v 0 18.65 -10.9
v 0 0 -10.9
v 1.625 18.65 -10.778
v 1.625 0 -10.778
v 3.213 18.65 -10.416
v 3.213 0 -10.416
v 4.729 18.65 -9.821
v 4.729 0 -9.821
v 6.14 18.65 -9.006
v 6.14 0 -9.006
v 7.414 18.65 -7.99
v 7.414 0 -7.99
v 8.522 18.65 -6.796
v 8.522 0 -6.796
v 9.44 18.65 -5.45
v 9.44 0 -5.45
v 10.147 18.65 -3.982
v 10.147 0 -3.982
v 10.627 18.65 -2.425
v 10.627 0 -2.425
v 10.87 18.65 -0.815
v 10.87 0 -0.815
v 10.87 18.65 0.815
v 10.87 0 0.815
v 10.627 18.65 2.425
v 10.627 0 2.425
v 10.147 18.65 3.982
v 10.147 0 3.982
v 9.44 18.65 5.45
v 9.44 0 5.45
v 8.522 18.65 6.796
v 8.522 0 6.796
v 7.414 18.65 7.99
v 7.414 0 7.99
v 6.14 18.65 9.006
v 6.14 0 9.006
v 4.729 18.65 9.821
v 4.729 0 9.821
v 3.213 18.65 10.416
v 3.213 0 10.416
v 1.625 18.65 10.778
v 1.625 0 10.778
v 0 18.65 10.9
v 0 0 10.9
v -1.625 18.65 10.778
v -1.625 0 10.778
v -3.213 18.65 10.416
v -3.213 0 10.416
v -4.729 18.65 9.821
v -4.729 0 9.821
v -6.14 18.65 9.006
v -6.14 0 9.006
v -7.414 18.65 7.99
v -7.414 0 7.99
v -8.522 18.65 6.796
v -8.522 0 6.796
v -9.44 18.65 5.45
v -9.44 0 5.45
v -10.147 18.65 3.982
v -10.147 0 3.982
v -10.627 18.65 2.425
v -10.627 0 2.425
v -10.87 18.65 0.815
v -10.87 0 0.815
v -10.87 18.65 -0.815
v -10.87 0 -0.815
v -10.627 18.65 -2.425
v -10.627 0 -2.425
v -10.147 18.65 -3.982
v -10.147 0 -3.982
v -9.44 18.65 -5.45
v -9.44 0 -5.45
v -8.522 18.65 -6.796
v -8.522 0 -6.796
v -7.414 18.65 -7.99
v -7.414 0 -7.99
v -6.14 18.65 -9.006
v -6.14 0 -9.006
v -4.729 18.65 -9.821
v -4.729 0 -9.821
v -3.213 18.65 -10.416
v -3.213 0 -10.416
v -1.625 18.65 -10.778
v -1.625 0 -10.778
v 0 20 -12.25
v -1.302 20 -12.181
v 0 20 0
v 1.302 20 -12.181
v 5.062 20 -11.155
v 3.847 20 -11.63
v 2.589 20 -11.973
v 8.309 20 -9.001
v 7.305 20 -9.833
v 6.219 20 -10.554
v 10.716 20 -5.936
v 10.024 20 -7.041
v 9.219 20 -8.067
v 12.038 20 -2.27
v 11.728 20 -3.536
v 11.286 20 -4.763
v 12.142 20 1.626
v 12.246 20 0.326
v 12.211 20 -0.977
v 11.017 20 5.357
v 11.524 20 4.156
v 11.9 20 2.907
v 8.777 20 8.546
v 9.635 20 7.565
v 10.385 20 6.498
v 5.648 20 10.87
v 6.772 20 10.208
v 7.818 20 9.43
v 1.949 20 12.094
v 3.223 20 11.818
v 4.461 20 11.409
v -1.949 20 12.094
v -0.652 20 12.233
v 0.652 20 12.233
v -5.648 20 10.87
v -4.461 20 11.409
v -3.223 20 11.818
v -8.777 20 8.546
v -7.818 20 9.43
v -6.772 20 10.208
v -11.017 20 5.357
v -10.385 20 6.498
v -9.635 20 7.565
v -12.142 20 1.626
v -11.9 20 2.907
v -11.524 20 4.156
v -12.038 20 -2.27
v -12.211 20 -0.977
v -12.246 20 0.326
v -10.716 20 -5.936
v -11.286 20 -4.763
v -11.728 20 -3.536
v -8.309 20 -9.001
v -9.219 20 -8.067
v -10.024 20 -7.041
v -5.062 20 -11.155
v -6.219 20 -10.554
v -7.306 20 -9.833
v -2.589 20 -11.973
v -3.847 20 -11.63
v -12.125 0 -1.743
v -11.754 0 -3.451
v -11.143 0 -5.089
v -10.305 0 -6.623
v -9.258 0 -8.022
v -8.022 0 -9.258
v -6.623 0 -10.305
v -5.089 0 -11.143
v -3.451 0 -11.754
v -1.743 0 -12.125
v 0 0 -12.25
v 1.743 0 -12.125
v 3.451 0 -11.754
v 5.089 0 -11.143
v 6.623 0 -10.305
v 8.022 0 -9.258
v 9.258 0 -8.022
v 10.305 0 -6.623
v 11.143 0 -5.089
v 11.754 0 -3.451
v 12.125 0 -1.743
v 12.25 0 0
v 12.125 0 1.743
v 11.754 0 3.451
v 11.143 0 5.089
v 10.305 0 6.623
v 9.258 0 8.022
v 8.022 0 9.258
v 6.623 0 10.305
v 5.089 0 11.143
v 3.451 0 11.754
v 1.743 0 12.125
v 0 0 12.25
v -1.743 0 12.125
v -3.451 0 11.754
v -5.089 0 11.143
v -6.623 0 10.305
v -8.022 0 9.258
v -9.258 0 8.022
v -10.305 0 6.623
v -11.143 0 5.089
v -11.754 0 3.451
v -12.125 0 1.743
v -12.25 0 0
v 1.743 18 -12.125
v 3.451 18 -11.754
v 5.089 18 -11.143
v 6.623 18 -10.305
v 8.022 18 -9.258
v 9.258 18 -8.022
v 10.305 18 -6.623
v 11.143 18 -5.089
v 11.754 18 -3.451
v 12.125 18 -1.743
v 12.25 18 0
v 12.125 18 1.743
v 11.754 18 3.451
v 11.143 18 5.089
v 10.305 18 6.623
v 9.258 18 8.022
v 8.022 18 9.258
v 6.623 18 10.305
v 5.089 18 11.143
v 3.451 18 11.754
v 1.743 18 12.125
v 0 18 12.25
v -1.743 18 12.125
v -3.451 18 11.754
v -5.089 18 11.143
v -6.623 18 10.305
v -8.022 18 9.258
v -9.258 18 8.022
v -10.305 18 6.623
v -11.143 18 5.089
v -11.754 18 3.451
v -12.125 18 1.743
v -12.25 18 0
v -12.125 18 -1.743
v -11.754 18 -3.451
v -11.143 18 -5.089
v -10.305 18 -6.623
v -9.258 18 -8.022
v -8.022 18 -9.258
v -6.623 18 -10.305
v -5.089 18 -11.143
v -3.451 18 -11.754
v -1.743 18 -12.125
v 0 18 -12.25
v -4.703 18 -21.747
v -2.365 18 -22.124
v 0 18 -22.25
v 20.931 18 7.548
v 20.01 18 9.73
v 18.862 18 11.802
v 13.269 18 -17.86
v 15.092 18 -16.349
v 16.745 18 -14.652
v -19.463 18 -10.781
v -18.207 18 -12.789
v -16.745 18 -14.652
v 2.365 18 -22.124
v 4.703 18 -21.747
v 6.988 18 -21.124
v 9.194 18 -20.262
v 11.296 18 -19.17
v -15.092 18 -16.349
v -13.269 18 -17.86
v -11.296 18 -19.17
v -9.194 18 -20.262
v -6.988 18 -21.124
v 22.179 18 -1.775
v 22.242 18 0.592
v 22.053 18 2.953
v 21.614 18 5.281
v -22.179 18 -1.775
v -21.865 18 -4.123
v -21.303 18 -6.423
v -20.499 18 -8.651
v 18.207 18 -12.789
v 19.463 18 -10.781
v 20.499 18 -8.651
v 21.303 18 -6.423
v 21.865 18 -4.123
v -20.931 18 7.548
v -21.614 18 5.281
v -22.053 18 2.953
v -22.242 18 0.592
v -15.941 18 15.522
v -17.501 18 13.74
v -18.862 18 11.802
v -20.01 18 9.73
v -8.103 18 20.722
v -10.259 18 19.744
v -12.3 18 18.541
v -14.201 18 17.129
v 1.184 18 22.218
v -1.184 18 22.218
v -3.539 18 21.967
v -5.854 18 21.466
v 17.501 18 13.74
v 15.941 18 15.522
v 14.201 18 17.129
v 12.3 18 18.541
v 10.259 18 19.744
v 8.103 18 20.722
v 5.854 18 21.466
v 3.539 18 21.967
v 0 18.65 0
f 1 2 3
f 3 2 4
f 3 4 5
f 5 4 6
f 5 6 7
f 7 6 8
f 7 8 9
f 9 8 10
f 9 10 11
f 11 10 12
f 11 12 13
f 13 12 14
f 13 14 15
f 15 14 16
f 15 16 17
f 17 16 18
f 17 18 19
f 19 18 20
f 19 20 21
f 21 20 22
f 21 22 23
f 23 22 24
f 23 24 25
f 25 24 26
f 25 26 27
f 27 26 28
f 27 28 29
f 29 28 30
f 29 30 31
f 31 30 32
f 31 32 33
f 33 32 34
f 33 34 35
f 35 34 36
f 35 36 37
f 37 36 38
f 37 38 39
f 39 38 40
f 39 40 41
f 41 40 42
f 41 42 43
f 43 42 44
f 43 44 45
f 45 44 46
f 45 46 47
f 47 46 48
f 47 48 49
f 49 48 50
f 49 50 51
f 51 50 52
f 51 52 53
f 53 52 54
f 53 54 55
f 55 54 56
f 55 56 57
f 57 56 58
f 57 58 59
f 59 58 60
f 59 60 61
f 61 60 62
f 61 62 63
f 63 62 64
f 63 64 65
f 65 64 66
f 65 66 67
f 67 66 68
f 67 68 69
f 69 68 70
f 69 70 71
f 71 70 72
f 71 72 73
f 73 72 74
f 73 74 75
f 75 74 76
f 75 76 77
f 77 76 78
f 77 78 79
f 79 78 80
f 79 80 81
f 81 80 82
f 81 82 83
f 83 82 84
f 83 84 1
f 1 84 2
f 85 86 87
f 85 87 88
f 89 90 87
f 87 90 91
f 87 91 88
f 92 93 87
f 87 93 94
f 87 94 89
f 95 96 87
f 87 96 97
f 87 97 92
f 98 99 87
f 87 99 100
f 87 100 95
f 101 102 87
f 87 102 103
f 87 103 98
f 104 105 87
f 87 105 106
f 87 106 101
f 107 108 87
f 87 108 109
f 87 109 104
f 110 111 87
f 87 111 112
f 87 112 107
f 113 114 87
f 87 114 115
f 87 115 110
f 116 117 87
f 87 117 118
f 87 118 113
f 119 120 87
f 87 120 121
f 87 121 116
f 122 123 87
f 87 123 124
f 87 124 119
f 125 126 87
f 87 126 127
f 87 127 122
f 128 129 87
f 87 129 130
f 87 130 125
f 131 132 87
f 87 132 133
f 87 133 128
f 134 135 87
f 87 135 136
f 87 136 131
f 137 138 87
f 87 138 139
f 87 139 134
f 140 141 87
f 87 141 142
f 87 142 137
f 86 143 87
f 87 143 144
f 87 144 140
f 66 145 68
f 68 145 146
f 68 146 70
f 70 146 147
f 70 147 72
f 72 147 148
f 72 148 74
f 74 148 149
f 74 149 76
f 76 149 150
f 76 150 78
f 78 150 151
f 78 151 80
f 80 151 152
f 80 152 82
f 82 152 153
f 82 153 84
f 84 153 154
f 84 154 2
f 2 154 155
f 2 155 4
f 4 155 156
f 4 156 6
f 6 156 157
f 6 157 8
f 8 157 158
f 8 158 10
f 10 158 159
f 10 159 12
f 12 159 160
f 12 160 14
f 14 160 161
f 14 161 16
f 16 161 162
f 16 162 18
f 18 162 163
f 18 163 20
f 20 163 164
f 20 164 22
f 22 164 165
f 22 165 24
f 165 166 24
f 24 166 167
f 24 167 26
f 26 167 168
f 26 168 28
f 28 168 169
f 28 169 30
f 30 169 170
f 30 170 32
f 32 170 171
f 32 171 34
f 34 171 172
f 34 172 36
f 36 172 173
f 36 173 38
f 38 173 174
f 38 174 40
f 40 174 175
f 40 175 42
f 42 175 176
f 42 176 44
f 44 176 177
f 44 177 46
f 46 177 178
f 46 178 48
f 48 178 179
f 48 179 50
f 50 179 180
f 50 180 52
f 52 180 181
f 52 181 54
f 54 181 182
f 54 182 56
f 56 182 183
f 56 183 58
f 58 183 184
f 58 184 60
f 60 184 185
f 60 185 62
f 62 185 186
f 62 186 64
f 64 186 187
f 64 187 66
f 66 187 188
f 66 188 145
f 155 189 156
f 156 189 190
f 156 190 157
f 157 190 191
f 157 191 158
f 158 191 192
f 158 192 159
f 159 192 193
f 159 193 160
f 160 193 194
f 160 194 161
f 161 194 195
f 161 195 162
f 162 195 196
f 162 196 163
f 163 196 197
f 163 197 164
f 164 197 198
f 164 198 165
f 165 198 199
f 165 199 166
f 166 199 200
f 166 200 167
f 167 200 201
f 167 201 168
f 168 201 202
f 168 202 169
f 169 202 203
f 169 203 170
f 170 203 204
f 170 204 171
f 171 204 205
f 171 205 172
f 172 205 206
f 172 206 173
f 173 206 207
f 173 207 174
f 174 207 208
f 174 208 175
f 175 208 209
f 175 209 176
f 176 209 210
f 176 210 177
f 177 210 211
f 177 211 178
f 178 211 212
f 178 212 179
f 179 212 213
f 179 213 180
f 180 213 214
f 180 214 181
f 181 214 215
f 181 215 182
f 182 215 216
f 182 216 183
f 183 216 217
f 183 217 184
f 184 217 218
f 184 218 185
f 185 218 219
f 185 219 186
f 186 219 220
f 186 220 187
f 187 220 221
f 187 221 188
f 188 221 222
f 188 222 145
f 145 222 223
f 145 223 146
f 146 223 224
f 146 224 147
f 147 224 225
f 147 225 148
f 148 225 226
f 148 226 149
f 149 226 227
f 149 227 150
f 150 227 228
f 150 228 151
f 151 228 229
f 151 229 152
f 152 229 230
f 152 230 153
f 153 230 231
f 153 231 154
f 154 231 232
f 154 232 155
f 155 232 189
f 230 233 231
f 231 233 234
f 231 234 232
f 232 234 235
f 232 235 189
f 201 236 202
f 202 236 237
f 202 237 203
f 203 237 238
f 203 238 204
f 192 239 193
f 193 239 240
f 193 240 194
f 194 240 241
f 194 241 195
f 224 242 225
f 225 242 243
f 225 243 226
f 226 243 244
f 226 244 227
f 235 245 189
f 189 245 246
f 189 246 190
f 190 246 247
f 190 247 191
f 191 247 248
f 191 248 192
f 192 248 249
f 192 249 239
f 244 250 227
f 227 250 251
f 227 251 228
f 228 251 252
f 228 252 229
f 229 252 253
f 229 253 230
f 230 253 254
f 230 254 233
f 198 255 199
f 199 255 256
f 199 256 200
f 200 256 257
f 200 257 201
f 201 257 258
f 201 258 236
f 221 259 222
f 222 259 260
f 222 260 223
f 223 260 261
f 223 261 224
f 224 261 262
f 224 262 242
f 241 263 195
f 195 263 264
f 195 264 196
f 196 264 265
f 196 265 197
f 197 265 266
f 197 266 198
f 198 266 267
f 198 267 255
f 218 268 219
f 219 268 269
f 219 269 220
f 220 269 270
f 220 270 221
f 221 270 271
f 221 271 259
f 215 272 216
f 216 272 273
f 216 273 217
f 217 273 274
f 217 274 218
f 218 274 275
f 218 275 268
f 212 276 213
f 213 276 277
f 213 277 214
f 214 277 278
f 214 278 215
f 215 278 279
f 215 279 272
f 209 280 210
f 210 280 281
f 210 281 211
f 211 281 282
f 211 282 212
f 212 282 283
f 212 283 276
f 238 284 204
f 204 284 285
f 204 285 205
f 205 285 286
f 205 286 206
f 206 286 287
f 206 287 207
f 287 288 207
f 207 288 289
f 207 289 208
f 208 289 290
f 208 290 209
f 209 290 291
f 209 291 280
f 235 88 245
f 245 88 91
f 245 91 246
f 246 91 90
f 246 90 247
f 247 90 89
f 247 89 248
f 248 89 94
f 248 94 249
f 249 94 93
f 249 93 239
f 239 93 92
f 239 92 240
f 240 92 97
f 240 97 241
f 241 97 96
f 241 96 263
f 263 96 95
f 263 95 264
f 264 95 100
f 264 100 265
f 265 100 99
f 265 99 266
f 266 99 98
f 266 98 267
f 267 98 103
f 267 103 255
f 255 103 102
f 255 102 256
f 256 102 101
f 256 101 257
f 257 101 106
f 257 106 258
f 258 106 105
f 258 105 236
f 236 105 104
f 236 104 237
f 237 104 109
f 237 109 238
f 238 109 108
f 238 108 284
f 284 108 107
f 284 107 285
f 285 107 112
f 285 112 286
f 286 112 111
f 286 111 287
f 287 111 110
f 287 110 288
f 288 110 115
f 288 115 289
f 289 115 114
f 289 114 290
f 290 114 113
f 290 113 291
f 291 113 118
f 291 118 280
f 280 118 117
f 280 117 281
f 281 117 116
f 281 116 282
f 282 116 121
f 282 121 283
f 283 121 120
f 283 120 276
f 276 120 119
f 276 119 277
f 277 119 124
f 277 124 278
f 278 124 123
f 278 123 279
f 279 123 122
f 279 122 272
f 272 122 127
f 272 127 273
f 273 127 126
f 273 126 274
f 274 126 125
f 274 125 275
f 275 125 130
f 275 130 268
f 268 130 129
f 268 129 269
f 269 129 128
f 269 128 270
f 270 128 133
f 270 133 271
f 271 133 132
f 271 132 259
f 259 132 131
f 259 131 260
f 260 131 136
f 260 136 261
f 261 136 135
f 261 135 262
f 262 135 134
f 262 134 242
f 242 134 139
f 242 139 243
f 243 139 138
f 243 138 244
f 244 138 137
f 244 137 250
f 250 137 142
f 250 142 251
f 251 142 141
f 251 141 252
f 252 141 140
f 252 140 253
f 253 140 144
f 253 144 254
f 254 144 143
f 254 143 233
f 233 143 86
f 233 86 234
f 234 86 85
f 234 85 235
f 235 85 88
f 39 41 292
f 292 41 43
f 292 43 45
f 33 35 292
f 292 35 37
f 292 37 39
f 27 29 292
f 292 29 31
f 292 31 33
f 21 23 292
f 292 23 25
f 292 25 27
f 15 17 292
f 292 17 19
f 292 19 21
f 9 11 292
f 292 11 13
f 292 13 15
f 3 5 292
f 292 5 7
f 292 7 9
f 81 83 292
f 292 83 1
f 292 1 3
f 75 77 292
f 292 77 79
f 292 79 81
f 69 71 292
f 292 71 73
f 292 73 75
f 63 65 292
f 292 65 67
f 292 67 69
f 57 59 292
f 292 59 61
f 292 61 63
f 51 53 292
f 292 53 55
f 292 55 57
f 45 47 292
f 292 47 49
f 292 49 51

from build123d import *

# Parameters (mm, degrees)
CROQUIS4_R              = 10.9
SALIENTE_EXTRUIR3_DEPTH = 1.35


with BuildPart() as part:
    # Croquis1 → Revolución1 (revolve)
    with BuildSketch(Plane.XY):
        Polygon((-10.9, 20), (-10.9, 0), (-12.25, 0), (-12.25, 18), (-22.25, 18), (-12.25, 20), align=None)
    revolve(axis=Axis((0, 0, 0), (0, 1, 0)))

    # Croquis4 → Saliente-Extruir3 (add)
    with BuildSketch(Plane(origin=(0, 20, 0), x_dir=(1, 0, 0), z_dir=(0, 1, 0))):
        Circle(CROQUIS4_R)
    extrude(amount=-SALIENTE_EXTRUIR3_DEPTH)


solid = part.part
